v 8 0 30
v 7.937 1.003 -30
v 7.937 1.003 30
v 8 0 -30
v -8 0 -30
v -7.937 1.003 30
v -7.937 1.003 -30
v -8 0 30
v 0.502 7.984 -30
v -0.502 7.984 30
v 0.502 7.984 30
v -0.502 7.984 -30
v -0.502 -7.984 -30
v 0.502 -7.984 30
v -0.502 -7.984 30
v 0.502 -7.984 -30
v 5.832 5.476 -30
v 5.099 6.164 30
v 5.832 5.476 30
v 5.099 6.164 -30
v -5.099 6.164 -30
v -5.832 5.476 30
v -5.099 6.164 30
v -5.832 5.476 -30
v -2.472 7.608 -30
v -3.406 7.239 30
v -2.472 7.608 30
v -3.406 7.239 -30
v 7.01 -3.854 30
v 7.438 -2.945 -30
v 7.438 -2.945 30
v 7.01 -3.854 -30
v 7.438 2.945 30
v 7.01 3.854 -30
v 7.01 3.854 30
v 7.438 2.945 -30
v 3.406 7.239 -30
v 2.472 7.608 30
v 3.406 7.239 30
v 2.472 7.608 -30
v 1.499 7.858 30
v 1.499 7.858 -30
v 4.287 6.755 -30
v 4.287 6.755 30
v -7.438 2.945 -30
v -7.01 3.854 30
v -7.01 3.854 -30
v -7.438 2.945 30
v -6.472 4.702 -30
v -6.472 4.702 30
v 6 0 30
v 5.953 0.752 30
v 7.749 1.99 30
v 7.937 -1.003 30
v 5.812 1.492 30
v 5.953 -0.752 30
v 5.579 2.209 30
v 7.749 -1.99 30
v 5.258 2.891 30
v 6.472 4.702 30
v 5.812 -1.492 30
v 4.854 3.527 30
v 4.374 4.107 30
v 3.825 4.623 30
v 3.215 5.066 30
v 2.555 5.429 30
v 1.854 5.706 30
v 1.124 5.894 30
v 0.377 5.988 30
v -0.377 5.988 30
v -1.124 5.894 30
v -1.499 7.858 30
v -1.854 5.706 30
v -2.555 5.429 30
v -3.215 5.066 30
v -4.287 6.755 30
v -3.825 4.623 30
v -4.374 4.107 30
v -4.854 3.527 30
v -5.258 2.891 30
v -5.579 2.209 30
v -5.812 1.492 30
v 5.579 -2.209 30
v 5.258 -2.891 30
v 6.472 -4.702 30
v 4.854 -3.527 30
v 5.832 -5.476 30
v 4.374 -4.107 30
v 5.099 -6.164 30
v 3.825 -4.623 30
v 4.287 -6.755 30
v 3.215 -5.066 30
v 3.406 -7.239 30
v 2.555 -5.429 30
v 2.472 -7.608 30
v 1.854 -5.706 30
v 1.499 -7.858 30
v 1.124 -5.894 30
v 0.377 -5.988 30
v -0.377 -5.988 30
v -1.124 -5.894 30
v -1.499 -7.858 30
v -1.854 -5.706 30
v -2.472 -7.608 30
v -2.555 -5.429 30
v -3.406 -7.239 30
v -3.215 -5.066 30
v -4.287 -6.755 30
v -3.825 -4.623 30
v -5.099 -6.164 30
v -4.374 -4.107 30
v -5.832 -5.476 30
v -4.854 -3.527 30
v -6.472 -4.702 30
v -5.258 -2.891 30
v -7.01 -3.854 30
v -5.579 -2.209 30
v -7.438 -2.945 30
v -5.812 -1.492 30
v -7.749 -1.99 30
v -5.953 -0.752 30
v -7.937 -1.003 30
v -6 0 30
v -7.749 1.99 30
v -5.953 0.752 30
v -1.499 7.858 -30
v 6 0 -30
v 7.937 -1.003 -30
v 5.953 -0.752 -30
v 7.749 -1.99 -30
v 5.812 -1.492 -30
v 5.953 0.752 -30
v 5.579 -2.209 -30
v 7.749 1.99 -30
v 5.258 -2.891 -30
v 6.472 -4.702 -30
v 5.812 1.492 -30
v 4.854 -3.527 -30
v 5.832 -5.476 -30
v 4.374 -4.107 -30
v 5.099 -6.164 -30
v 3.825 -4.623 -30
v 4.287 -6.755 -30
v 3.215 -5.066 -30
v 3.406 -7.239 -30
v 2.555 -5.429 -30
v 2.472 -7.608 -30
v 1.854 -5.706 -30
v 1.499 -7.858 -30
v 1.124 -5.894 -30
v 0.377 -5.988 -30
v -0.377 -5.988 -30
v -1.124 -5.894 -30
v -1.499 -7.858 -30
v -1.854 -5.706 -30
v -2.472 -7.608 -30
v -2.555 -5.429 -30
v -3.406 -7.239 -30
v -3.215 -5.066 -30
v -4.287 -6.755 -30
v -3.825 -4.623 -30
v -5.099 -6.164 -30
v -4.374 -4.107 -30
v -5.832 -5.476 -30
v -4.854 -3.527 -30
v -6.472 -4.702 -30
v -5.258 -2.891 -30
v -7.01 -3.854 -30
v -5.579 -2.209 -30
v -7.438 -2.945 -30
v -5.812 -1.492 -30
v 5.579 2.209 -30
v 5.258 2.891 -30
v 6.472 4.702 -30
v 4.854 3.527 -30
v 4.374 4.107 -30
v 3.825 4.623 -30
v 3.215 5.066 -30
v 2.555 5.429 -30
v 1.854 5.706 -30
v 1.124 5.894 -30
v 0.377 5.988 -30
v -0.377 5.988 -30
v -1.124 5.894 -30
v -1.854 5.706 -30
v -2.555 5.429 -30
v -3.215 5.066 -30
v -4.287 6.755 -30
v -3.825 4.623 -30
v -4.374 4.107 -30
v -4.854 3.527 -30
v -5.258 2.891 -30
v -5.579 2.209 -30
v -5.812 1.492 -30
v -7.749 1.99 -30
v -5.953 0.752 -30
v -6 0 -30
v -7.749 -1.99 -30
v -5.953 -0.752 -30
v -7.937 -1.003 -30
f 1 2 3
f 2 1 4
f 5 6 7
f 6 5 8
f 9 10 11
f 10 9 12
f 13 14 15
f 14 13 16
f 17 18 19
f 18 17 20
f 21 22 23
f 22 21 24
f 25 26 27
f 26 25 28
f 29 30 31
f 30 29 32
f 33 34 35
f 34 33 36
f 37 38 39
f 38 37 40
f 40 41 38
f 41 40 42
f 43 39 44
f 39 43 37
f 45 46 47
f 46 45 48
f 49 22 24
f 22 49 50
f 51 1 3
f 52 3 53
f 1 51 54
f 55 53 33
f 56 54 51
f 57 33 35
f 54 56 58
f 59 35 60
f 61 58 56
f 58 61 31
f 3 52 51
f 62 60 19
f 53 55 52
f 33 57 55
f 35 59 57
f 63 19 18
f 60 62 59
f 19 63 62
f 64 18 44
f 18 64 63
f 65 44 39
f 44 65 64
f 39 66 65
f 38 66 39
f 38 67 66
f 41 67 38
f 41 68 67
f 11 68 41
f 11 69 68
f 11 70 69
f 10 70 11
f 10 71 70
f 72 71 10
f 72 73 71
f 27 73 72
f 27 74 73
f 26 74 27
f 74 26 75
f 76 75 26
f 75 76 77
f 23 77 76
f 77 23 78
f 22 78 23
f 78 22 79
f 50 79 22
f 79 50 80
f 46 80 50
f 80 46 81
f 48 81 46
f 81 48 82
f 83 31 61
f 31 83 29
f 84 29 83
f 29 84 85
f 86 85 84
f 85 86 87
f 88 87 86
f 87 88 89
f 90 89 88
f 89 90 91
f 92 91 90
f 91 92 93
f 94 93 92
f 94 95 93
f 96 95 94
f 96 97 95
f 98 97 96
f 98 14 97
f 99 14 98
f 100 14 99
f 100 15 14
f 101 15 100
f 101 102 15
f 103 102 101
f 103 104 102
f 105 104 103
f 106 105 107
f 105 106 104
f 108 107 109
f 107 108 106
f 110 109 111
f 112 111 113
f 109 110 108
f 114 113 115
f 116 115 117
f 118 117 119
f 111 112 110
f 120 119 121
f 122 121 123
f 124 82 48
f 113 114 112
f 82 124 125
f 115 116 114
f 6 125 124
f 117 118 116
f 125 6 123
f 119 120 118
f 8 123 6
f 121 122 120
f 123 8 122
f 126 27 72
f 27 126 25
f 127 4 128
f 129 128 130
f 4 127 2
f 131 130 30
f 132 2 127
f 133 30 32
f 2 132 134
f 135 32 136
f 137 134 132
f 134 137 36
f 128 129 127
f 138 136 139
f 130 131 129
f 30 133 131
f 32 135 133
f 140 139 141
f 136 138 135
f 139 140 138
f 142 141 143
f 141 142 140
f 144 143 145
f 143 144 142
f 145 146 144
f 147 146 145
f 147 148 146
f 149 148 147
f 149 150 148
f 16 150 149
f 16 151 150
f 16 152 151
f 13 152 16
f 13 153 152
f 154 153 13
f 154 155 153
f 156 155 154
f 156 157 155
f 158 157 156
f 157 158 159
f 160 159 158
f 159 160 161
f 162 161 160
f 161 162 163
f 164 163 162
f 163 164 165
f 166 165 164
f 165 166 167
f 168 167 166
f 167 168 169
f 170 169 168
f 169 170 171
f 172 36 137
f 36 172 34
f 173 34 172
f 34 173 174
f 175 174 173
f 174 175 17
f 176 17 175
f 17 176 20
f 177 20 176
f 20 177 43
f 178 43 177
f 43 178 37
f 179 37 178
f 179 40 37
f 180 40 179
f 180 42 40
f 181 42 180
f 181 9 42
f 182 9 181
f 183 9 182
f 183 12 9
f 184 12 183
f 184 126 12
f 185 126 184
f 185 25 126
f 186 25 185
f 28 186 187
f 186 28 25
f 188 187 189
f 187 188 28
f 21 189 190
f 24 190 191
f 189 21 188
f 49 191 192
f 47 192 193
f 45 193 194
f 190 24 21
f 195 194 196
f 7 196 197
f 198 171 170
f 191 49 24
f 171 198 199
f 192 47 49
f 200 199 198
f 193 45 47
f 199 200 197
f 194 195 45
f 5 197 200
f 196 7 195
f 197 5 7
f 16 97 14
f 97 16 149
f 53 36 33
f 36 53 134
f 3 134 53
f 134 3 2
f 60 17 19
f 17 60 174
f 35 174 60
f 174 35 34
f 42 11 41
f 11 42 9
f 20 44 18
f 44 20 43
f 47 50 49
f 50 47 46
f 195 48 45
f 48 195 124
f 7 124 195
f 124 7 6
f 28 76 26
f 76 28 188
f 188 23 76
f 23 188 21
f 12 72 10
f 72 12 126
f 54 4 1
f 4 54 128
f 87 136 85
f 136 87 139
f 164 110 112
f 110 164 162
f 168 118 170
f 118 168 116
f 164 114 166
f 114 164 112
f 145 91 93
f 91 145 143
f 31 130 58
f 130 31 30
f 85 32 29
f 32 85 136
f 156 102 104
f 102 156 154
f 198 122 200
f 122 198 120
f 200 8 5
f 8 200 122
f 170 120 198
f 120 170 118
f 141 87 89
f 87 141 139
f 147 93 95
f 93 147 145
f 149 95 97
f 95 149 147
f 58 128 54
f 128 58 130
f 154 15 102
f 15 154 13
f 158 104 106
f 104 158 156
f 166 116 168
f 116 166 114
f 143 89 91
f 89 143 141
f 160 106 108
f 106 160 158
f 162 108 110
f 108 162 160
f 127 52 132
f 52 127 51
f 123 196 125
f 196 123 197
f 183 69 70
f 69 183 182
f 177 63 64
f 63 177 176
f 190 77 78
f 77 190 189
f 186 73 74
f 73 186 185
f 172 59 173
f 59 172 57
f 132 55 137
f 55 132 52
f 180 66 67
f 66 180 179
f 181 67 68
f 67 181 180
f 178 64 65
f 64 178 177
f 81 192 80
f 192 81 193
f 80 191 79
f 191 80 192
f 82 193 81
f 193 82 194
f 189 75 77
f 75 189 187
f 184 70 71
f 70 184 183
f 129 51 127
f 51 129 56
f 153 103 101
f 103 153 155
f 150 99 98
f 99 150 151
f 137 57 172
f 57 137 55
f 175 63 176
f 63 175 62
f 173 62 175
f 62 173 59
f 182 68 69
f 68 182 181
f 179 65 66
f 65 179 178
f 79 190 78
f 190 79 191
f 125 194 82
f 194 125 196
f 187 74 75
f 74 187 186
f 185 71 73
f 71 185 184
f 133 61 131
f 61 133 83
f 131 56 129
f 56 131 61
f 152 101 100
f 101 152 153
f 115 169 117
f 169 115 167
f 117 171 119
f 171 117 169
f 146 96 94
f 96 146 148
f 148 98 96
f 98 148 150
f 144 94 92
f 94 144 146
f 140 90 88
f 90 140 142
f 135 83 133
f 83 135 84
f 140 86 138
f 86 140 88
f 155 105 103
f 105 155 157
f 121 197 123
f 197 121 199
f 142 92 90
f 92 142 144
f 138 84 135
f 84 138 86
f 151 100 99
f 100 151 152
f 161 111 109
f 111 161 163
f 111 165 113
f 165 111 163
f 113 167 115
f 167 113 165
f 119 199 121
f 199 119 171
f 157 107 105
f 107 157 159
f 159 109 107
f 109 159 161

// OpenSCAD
$fn = 50;


difference() {
	union() {
		translate(v = [0, 0, -30.0000000000]) {
			cylinder(h = 60, r = 8.0000000000);
		}
	}
	union() {
		translate(v = [0, 0, -100.0000000000]) {
			cylinder(h = 200, r = 6);
		}
	}
}
